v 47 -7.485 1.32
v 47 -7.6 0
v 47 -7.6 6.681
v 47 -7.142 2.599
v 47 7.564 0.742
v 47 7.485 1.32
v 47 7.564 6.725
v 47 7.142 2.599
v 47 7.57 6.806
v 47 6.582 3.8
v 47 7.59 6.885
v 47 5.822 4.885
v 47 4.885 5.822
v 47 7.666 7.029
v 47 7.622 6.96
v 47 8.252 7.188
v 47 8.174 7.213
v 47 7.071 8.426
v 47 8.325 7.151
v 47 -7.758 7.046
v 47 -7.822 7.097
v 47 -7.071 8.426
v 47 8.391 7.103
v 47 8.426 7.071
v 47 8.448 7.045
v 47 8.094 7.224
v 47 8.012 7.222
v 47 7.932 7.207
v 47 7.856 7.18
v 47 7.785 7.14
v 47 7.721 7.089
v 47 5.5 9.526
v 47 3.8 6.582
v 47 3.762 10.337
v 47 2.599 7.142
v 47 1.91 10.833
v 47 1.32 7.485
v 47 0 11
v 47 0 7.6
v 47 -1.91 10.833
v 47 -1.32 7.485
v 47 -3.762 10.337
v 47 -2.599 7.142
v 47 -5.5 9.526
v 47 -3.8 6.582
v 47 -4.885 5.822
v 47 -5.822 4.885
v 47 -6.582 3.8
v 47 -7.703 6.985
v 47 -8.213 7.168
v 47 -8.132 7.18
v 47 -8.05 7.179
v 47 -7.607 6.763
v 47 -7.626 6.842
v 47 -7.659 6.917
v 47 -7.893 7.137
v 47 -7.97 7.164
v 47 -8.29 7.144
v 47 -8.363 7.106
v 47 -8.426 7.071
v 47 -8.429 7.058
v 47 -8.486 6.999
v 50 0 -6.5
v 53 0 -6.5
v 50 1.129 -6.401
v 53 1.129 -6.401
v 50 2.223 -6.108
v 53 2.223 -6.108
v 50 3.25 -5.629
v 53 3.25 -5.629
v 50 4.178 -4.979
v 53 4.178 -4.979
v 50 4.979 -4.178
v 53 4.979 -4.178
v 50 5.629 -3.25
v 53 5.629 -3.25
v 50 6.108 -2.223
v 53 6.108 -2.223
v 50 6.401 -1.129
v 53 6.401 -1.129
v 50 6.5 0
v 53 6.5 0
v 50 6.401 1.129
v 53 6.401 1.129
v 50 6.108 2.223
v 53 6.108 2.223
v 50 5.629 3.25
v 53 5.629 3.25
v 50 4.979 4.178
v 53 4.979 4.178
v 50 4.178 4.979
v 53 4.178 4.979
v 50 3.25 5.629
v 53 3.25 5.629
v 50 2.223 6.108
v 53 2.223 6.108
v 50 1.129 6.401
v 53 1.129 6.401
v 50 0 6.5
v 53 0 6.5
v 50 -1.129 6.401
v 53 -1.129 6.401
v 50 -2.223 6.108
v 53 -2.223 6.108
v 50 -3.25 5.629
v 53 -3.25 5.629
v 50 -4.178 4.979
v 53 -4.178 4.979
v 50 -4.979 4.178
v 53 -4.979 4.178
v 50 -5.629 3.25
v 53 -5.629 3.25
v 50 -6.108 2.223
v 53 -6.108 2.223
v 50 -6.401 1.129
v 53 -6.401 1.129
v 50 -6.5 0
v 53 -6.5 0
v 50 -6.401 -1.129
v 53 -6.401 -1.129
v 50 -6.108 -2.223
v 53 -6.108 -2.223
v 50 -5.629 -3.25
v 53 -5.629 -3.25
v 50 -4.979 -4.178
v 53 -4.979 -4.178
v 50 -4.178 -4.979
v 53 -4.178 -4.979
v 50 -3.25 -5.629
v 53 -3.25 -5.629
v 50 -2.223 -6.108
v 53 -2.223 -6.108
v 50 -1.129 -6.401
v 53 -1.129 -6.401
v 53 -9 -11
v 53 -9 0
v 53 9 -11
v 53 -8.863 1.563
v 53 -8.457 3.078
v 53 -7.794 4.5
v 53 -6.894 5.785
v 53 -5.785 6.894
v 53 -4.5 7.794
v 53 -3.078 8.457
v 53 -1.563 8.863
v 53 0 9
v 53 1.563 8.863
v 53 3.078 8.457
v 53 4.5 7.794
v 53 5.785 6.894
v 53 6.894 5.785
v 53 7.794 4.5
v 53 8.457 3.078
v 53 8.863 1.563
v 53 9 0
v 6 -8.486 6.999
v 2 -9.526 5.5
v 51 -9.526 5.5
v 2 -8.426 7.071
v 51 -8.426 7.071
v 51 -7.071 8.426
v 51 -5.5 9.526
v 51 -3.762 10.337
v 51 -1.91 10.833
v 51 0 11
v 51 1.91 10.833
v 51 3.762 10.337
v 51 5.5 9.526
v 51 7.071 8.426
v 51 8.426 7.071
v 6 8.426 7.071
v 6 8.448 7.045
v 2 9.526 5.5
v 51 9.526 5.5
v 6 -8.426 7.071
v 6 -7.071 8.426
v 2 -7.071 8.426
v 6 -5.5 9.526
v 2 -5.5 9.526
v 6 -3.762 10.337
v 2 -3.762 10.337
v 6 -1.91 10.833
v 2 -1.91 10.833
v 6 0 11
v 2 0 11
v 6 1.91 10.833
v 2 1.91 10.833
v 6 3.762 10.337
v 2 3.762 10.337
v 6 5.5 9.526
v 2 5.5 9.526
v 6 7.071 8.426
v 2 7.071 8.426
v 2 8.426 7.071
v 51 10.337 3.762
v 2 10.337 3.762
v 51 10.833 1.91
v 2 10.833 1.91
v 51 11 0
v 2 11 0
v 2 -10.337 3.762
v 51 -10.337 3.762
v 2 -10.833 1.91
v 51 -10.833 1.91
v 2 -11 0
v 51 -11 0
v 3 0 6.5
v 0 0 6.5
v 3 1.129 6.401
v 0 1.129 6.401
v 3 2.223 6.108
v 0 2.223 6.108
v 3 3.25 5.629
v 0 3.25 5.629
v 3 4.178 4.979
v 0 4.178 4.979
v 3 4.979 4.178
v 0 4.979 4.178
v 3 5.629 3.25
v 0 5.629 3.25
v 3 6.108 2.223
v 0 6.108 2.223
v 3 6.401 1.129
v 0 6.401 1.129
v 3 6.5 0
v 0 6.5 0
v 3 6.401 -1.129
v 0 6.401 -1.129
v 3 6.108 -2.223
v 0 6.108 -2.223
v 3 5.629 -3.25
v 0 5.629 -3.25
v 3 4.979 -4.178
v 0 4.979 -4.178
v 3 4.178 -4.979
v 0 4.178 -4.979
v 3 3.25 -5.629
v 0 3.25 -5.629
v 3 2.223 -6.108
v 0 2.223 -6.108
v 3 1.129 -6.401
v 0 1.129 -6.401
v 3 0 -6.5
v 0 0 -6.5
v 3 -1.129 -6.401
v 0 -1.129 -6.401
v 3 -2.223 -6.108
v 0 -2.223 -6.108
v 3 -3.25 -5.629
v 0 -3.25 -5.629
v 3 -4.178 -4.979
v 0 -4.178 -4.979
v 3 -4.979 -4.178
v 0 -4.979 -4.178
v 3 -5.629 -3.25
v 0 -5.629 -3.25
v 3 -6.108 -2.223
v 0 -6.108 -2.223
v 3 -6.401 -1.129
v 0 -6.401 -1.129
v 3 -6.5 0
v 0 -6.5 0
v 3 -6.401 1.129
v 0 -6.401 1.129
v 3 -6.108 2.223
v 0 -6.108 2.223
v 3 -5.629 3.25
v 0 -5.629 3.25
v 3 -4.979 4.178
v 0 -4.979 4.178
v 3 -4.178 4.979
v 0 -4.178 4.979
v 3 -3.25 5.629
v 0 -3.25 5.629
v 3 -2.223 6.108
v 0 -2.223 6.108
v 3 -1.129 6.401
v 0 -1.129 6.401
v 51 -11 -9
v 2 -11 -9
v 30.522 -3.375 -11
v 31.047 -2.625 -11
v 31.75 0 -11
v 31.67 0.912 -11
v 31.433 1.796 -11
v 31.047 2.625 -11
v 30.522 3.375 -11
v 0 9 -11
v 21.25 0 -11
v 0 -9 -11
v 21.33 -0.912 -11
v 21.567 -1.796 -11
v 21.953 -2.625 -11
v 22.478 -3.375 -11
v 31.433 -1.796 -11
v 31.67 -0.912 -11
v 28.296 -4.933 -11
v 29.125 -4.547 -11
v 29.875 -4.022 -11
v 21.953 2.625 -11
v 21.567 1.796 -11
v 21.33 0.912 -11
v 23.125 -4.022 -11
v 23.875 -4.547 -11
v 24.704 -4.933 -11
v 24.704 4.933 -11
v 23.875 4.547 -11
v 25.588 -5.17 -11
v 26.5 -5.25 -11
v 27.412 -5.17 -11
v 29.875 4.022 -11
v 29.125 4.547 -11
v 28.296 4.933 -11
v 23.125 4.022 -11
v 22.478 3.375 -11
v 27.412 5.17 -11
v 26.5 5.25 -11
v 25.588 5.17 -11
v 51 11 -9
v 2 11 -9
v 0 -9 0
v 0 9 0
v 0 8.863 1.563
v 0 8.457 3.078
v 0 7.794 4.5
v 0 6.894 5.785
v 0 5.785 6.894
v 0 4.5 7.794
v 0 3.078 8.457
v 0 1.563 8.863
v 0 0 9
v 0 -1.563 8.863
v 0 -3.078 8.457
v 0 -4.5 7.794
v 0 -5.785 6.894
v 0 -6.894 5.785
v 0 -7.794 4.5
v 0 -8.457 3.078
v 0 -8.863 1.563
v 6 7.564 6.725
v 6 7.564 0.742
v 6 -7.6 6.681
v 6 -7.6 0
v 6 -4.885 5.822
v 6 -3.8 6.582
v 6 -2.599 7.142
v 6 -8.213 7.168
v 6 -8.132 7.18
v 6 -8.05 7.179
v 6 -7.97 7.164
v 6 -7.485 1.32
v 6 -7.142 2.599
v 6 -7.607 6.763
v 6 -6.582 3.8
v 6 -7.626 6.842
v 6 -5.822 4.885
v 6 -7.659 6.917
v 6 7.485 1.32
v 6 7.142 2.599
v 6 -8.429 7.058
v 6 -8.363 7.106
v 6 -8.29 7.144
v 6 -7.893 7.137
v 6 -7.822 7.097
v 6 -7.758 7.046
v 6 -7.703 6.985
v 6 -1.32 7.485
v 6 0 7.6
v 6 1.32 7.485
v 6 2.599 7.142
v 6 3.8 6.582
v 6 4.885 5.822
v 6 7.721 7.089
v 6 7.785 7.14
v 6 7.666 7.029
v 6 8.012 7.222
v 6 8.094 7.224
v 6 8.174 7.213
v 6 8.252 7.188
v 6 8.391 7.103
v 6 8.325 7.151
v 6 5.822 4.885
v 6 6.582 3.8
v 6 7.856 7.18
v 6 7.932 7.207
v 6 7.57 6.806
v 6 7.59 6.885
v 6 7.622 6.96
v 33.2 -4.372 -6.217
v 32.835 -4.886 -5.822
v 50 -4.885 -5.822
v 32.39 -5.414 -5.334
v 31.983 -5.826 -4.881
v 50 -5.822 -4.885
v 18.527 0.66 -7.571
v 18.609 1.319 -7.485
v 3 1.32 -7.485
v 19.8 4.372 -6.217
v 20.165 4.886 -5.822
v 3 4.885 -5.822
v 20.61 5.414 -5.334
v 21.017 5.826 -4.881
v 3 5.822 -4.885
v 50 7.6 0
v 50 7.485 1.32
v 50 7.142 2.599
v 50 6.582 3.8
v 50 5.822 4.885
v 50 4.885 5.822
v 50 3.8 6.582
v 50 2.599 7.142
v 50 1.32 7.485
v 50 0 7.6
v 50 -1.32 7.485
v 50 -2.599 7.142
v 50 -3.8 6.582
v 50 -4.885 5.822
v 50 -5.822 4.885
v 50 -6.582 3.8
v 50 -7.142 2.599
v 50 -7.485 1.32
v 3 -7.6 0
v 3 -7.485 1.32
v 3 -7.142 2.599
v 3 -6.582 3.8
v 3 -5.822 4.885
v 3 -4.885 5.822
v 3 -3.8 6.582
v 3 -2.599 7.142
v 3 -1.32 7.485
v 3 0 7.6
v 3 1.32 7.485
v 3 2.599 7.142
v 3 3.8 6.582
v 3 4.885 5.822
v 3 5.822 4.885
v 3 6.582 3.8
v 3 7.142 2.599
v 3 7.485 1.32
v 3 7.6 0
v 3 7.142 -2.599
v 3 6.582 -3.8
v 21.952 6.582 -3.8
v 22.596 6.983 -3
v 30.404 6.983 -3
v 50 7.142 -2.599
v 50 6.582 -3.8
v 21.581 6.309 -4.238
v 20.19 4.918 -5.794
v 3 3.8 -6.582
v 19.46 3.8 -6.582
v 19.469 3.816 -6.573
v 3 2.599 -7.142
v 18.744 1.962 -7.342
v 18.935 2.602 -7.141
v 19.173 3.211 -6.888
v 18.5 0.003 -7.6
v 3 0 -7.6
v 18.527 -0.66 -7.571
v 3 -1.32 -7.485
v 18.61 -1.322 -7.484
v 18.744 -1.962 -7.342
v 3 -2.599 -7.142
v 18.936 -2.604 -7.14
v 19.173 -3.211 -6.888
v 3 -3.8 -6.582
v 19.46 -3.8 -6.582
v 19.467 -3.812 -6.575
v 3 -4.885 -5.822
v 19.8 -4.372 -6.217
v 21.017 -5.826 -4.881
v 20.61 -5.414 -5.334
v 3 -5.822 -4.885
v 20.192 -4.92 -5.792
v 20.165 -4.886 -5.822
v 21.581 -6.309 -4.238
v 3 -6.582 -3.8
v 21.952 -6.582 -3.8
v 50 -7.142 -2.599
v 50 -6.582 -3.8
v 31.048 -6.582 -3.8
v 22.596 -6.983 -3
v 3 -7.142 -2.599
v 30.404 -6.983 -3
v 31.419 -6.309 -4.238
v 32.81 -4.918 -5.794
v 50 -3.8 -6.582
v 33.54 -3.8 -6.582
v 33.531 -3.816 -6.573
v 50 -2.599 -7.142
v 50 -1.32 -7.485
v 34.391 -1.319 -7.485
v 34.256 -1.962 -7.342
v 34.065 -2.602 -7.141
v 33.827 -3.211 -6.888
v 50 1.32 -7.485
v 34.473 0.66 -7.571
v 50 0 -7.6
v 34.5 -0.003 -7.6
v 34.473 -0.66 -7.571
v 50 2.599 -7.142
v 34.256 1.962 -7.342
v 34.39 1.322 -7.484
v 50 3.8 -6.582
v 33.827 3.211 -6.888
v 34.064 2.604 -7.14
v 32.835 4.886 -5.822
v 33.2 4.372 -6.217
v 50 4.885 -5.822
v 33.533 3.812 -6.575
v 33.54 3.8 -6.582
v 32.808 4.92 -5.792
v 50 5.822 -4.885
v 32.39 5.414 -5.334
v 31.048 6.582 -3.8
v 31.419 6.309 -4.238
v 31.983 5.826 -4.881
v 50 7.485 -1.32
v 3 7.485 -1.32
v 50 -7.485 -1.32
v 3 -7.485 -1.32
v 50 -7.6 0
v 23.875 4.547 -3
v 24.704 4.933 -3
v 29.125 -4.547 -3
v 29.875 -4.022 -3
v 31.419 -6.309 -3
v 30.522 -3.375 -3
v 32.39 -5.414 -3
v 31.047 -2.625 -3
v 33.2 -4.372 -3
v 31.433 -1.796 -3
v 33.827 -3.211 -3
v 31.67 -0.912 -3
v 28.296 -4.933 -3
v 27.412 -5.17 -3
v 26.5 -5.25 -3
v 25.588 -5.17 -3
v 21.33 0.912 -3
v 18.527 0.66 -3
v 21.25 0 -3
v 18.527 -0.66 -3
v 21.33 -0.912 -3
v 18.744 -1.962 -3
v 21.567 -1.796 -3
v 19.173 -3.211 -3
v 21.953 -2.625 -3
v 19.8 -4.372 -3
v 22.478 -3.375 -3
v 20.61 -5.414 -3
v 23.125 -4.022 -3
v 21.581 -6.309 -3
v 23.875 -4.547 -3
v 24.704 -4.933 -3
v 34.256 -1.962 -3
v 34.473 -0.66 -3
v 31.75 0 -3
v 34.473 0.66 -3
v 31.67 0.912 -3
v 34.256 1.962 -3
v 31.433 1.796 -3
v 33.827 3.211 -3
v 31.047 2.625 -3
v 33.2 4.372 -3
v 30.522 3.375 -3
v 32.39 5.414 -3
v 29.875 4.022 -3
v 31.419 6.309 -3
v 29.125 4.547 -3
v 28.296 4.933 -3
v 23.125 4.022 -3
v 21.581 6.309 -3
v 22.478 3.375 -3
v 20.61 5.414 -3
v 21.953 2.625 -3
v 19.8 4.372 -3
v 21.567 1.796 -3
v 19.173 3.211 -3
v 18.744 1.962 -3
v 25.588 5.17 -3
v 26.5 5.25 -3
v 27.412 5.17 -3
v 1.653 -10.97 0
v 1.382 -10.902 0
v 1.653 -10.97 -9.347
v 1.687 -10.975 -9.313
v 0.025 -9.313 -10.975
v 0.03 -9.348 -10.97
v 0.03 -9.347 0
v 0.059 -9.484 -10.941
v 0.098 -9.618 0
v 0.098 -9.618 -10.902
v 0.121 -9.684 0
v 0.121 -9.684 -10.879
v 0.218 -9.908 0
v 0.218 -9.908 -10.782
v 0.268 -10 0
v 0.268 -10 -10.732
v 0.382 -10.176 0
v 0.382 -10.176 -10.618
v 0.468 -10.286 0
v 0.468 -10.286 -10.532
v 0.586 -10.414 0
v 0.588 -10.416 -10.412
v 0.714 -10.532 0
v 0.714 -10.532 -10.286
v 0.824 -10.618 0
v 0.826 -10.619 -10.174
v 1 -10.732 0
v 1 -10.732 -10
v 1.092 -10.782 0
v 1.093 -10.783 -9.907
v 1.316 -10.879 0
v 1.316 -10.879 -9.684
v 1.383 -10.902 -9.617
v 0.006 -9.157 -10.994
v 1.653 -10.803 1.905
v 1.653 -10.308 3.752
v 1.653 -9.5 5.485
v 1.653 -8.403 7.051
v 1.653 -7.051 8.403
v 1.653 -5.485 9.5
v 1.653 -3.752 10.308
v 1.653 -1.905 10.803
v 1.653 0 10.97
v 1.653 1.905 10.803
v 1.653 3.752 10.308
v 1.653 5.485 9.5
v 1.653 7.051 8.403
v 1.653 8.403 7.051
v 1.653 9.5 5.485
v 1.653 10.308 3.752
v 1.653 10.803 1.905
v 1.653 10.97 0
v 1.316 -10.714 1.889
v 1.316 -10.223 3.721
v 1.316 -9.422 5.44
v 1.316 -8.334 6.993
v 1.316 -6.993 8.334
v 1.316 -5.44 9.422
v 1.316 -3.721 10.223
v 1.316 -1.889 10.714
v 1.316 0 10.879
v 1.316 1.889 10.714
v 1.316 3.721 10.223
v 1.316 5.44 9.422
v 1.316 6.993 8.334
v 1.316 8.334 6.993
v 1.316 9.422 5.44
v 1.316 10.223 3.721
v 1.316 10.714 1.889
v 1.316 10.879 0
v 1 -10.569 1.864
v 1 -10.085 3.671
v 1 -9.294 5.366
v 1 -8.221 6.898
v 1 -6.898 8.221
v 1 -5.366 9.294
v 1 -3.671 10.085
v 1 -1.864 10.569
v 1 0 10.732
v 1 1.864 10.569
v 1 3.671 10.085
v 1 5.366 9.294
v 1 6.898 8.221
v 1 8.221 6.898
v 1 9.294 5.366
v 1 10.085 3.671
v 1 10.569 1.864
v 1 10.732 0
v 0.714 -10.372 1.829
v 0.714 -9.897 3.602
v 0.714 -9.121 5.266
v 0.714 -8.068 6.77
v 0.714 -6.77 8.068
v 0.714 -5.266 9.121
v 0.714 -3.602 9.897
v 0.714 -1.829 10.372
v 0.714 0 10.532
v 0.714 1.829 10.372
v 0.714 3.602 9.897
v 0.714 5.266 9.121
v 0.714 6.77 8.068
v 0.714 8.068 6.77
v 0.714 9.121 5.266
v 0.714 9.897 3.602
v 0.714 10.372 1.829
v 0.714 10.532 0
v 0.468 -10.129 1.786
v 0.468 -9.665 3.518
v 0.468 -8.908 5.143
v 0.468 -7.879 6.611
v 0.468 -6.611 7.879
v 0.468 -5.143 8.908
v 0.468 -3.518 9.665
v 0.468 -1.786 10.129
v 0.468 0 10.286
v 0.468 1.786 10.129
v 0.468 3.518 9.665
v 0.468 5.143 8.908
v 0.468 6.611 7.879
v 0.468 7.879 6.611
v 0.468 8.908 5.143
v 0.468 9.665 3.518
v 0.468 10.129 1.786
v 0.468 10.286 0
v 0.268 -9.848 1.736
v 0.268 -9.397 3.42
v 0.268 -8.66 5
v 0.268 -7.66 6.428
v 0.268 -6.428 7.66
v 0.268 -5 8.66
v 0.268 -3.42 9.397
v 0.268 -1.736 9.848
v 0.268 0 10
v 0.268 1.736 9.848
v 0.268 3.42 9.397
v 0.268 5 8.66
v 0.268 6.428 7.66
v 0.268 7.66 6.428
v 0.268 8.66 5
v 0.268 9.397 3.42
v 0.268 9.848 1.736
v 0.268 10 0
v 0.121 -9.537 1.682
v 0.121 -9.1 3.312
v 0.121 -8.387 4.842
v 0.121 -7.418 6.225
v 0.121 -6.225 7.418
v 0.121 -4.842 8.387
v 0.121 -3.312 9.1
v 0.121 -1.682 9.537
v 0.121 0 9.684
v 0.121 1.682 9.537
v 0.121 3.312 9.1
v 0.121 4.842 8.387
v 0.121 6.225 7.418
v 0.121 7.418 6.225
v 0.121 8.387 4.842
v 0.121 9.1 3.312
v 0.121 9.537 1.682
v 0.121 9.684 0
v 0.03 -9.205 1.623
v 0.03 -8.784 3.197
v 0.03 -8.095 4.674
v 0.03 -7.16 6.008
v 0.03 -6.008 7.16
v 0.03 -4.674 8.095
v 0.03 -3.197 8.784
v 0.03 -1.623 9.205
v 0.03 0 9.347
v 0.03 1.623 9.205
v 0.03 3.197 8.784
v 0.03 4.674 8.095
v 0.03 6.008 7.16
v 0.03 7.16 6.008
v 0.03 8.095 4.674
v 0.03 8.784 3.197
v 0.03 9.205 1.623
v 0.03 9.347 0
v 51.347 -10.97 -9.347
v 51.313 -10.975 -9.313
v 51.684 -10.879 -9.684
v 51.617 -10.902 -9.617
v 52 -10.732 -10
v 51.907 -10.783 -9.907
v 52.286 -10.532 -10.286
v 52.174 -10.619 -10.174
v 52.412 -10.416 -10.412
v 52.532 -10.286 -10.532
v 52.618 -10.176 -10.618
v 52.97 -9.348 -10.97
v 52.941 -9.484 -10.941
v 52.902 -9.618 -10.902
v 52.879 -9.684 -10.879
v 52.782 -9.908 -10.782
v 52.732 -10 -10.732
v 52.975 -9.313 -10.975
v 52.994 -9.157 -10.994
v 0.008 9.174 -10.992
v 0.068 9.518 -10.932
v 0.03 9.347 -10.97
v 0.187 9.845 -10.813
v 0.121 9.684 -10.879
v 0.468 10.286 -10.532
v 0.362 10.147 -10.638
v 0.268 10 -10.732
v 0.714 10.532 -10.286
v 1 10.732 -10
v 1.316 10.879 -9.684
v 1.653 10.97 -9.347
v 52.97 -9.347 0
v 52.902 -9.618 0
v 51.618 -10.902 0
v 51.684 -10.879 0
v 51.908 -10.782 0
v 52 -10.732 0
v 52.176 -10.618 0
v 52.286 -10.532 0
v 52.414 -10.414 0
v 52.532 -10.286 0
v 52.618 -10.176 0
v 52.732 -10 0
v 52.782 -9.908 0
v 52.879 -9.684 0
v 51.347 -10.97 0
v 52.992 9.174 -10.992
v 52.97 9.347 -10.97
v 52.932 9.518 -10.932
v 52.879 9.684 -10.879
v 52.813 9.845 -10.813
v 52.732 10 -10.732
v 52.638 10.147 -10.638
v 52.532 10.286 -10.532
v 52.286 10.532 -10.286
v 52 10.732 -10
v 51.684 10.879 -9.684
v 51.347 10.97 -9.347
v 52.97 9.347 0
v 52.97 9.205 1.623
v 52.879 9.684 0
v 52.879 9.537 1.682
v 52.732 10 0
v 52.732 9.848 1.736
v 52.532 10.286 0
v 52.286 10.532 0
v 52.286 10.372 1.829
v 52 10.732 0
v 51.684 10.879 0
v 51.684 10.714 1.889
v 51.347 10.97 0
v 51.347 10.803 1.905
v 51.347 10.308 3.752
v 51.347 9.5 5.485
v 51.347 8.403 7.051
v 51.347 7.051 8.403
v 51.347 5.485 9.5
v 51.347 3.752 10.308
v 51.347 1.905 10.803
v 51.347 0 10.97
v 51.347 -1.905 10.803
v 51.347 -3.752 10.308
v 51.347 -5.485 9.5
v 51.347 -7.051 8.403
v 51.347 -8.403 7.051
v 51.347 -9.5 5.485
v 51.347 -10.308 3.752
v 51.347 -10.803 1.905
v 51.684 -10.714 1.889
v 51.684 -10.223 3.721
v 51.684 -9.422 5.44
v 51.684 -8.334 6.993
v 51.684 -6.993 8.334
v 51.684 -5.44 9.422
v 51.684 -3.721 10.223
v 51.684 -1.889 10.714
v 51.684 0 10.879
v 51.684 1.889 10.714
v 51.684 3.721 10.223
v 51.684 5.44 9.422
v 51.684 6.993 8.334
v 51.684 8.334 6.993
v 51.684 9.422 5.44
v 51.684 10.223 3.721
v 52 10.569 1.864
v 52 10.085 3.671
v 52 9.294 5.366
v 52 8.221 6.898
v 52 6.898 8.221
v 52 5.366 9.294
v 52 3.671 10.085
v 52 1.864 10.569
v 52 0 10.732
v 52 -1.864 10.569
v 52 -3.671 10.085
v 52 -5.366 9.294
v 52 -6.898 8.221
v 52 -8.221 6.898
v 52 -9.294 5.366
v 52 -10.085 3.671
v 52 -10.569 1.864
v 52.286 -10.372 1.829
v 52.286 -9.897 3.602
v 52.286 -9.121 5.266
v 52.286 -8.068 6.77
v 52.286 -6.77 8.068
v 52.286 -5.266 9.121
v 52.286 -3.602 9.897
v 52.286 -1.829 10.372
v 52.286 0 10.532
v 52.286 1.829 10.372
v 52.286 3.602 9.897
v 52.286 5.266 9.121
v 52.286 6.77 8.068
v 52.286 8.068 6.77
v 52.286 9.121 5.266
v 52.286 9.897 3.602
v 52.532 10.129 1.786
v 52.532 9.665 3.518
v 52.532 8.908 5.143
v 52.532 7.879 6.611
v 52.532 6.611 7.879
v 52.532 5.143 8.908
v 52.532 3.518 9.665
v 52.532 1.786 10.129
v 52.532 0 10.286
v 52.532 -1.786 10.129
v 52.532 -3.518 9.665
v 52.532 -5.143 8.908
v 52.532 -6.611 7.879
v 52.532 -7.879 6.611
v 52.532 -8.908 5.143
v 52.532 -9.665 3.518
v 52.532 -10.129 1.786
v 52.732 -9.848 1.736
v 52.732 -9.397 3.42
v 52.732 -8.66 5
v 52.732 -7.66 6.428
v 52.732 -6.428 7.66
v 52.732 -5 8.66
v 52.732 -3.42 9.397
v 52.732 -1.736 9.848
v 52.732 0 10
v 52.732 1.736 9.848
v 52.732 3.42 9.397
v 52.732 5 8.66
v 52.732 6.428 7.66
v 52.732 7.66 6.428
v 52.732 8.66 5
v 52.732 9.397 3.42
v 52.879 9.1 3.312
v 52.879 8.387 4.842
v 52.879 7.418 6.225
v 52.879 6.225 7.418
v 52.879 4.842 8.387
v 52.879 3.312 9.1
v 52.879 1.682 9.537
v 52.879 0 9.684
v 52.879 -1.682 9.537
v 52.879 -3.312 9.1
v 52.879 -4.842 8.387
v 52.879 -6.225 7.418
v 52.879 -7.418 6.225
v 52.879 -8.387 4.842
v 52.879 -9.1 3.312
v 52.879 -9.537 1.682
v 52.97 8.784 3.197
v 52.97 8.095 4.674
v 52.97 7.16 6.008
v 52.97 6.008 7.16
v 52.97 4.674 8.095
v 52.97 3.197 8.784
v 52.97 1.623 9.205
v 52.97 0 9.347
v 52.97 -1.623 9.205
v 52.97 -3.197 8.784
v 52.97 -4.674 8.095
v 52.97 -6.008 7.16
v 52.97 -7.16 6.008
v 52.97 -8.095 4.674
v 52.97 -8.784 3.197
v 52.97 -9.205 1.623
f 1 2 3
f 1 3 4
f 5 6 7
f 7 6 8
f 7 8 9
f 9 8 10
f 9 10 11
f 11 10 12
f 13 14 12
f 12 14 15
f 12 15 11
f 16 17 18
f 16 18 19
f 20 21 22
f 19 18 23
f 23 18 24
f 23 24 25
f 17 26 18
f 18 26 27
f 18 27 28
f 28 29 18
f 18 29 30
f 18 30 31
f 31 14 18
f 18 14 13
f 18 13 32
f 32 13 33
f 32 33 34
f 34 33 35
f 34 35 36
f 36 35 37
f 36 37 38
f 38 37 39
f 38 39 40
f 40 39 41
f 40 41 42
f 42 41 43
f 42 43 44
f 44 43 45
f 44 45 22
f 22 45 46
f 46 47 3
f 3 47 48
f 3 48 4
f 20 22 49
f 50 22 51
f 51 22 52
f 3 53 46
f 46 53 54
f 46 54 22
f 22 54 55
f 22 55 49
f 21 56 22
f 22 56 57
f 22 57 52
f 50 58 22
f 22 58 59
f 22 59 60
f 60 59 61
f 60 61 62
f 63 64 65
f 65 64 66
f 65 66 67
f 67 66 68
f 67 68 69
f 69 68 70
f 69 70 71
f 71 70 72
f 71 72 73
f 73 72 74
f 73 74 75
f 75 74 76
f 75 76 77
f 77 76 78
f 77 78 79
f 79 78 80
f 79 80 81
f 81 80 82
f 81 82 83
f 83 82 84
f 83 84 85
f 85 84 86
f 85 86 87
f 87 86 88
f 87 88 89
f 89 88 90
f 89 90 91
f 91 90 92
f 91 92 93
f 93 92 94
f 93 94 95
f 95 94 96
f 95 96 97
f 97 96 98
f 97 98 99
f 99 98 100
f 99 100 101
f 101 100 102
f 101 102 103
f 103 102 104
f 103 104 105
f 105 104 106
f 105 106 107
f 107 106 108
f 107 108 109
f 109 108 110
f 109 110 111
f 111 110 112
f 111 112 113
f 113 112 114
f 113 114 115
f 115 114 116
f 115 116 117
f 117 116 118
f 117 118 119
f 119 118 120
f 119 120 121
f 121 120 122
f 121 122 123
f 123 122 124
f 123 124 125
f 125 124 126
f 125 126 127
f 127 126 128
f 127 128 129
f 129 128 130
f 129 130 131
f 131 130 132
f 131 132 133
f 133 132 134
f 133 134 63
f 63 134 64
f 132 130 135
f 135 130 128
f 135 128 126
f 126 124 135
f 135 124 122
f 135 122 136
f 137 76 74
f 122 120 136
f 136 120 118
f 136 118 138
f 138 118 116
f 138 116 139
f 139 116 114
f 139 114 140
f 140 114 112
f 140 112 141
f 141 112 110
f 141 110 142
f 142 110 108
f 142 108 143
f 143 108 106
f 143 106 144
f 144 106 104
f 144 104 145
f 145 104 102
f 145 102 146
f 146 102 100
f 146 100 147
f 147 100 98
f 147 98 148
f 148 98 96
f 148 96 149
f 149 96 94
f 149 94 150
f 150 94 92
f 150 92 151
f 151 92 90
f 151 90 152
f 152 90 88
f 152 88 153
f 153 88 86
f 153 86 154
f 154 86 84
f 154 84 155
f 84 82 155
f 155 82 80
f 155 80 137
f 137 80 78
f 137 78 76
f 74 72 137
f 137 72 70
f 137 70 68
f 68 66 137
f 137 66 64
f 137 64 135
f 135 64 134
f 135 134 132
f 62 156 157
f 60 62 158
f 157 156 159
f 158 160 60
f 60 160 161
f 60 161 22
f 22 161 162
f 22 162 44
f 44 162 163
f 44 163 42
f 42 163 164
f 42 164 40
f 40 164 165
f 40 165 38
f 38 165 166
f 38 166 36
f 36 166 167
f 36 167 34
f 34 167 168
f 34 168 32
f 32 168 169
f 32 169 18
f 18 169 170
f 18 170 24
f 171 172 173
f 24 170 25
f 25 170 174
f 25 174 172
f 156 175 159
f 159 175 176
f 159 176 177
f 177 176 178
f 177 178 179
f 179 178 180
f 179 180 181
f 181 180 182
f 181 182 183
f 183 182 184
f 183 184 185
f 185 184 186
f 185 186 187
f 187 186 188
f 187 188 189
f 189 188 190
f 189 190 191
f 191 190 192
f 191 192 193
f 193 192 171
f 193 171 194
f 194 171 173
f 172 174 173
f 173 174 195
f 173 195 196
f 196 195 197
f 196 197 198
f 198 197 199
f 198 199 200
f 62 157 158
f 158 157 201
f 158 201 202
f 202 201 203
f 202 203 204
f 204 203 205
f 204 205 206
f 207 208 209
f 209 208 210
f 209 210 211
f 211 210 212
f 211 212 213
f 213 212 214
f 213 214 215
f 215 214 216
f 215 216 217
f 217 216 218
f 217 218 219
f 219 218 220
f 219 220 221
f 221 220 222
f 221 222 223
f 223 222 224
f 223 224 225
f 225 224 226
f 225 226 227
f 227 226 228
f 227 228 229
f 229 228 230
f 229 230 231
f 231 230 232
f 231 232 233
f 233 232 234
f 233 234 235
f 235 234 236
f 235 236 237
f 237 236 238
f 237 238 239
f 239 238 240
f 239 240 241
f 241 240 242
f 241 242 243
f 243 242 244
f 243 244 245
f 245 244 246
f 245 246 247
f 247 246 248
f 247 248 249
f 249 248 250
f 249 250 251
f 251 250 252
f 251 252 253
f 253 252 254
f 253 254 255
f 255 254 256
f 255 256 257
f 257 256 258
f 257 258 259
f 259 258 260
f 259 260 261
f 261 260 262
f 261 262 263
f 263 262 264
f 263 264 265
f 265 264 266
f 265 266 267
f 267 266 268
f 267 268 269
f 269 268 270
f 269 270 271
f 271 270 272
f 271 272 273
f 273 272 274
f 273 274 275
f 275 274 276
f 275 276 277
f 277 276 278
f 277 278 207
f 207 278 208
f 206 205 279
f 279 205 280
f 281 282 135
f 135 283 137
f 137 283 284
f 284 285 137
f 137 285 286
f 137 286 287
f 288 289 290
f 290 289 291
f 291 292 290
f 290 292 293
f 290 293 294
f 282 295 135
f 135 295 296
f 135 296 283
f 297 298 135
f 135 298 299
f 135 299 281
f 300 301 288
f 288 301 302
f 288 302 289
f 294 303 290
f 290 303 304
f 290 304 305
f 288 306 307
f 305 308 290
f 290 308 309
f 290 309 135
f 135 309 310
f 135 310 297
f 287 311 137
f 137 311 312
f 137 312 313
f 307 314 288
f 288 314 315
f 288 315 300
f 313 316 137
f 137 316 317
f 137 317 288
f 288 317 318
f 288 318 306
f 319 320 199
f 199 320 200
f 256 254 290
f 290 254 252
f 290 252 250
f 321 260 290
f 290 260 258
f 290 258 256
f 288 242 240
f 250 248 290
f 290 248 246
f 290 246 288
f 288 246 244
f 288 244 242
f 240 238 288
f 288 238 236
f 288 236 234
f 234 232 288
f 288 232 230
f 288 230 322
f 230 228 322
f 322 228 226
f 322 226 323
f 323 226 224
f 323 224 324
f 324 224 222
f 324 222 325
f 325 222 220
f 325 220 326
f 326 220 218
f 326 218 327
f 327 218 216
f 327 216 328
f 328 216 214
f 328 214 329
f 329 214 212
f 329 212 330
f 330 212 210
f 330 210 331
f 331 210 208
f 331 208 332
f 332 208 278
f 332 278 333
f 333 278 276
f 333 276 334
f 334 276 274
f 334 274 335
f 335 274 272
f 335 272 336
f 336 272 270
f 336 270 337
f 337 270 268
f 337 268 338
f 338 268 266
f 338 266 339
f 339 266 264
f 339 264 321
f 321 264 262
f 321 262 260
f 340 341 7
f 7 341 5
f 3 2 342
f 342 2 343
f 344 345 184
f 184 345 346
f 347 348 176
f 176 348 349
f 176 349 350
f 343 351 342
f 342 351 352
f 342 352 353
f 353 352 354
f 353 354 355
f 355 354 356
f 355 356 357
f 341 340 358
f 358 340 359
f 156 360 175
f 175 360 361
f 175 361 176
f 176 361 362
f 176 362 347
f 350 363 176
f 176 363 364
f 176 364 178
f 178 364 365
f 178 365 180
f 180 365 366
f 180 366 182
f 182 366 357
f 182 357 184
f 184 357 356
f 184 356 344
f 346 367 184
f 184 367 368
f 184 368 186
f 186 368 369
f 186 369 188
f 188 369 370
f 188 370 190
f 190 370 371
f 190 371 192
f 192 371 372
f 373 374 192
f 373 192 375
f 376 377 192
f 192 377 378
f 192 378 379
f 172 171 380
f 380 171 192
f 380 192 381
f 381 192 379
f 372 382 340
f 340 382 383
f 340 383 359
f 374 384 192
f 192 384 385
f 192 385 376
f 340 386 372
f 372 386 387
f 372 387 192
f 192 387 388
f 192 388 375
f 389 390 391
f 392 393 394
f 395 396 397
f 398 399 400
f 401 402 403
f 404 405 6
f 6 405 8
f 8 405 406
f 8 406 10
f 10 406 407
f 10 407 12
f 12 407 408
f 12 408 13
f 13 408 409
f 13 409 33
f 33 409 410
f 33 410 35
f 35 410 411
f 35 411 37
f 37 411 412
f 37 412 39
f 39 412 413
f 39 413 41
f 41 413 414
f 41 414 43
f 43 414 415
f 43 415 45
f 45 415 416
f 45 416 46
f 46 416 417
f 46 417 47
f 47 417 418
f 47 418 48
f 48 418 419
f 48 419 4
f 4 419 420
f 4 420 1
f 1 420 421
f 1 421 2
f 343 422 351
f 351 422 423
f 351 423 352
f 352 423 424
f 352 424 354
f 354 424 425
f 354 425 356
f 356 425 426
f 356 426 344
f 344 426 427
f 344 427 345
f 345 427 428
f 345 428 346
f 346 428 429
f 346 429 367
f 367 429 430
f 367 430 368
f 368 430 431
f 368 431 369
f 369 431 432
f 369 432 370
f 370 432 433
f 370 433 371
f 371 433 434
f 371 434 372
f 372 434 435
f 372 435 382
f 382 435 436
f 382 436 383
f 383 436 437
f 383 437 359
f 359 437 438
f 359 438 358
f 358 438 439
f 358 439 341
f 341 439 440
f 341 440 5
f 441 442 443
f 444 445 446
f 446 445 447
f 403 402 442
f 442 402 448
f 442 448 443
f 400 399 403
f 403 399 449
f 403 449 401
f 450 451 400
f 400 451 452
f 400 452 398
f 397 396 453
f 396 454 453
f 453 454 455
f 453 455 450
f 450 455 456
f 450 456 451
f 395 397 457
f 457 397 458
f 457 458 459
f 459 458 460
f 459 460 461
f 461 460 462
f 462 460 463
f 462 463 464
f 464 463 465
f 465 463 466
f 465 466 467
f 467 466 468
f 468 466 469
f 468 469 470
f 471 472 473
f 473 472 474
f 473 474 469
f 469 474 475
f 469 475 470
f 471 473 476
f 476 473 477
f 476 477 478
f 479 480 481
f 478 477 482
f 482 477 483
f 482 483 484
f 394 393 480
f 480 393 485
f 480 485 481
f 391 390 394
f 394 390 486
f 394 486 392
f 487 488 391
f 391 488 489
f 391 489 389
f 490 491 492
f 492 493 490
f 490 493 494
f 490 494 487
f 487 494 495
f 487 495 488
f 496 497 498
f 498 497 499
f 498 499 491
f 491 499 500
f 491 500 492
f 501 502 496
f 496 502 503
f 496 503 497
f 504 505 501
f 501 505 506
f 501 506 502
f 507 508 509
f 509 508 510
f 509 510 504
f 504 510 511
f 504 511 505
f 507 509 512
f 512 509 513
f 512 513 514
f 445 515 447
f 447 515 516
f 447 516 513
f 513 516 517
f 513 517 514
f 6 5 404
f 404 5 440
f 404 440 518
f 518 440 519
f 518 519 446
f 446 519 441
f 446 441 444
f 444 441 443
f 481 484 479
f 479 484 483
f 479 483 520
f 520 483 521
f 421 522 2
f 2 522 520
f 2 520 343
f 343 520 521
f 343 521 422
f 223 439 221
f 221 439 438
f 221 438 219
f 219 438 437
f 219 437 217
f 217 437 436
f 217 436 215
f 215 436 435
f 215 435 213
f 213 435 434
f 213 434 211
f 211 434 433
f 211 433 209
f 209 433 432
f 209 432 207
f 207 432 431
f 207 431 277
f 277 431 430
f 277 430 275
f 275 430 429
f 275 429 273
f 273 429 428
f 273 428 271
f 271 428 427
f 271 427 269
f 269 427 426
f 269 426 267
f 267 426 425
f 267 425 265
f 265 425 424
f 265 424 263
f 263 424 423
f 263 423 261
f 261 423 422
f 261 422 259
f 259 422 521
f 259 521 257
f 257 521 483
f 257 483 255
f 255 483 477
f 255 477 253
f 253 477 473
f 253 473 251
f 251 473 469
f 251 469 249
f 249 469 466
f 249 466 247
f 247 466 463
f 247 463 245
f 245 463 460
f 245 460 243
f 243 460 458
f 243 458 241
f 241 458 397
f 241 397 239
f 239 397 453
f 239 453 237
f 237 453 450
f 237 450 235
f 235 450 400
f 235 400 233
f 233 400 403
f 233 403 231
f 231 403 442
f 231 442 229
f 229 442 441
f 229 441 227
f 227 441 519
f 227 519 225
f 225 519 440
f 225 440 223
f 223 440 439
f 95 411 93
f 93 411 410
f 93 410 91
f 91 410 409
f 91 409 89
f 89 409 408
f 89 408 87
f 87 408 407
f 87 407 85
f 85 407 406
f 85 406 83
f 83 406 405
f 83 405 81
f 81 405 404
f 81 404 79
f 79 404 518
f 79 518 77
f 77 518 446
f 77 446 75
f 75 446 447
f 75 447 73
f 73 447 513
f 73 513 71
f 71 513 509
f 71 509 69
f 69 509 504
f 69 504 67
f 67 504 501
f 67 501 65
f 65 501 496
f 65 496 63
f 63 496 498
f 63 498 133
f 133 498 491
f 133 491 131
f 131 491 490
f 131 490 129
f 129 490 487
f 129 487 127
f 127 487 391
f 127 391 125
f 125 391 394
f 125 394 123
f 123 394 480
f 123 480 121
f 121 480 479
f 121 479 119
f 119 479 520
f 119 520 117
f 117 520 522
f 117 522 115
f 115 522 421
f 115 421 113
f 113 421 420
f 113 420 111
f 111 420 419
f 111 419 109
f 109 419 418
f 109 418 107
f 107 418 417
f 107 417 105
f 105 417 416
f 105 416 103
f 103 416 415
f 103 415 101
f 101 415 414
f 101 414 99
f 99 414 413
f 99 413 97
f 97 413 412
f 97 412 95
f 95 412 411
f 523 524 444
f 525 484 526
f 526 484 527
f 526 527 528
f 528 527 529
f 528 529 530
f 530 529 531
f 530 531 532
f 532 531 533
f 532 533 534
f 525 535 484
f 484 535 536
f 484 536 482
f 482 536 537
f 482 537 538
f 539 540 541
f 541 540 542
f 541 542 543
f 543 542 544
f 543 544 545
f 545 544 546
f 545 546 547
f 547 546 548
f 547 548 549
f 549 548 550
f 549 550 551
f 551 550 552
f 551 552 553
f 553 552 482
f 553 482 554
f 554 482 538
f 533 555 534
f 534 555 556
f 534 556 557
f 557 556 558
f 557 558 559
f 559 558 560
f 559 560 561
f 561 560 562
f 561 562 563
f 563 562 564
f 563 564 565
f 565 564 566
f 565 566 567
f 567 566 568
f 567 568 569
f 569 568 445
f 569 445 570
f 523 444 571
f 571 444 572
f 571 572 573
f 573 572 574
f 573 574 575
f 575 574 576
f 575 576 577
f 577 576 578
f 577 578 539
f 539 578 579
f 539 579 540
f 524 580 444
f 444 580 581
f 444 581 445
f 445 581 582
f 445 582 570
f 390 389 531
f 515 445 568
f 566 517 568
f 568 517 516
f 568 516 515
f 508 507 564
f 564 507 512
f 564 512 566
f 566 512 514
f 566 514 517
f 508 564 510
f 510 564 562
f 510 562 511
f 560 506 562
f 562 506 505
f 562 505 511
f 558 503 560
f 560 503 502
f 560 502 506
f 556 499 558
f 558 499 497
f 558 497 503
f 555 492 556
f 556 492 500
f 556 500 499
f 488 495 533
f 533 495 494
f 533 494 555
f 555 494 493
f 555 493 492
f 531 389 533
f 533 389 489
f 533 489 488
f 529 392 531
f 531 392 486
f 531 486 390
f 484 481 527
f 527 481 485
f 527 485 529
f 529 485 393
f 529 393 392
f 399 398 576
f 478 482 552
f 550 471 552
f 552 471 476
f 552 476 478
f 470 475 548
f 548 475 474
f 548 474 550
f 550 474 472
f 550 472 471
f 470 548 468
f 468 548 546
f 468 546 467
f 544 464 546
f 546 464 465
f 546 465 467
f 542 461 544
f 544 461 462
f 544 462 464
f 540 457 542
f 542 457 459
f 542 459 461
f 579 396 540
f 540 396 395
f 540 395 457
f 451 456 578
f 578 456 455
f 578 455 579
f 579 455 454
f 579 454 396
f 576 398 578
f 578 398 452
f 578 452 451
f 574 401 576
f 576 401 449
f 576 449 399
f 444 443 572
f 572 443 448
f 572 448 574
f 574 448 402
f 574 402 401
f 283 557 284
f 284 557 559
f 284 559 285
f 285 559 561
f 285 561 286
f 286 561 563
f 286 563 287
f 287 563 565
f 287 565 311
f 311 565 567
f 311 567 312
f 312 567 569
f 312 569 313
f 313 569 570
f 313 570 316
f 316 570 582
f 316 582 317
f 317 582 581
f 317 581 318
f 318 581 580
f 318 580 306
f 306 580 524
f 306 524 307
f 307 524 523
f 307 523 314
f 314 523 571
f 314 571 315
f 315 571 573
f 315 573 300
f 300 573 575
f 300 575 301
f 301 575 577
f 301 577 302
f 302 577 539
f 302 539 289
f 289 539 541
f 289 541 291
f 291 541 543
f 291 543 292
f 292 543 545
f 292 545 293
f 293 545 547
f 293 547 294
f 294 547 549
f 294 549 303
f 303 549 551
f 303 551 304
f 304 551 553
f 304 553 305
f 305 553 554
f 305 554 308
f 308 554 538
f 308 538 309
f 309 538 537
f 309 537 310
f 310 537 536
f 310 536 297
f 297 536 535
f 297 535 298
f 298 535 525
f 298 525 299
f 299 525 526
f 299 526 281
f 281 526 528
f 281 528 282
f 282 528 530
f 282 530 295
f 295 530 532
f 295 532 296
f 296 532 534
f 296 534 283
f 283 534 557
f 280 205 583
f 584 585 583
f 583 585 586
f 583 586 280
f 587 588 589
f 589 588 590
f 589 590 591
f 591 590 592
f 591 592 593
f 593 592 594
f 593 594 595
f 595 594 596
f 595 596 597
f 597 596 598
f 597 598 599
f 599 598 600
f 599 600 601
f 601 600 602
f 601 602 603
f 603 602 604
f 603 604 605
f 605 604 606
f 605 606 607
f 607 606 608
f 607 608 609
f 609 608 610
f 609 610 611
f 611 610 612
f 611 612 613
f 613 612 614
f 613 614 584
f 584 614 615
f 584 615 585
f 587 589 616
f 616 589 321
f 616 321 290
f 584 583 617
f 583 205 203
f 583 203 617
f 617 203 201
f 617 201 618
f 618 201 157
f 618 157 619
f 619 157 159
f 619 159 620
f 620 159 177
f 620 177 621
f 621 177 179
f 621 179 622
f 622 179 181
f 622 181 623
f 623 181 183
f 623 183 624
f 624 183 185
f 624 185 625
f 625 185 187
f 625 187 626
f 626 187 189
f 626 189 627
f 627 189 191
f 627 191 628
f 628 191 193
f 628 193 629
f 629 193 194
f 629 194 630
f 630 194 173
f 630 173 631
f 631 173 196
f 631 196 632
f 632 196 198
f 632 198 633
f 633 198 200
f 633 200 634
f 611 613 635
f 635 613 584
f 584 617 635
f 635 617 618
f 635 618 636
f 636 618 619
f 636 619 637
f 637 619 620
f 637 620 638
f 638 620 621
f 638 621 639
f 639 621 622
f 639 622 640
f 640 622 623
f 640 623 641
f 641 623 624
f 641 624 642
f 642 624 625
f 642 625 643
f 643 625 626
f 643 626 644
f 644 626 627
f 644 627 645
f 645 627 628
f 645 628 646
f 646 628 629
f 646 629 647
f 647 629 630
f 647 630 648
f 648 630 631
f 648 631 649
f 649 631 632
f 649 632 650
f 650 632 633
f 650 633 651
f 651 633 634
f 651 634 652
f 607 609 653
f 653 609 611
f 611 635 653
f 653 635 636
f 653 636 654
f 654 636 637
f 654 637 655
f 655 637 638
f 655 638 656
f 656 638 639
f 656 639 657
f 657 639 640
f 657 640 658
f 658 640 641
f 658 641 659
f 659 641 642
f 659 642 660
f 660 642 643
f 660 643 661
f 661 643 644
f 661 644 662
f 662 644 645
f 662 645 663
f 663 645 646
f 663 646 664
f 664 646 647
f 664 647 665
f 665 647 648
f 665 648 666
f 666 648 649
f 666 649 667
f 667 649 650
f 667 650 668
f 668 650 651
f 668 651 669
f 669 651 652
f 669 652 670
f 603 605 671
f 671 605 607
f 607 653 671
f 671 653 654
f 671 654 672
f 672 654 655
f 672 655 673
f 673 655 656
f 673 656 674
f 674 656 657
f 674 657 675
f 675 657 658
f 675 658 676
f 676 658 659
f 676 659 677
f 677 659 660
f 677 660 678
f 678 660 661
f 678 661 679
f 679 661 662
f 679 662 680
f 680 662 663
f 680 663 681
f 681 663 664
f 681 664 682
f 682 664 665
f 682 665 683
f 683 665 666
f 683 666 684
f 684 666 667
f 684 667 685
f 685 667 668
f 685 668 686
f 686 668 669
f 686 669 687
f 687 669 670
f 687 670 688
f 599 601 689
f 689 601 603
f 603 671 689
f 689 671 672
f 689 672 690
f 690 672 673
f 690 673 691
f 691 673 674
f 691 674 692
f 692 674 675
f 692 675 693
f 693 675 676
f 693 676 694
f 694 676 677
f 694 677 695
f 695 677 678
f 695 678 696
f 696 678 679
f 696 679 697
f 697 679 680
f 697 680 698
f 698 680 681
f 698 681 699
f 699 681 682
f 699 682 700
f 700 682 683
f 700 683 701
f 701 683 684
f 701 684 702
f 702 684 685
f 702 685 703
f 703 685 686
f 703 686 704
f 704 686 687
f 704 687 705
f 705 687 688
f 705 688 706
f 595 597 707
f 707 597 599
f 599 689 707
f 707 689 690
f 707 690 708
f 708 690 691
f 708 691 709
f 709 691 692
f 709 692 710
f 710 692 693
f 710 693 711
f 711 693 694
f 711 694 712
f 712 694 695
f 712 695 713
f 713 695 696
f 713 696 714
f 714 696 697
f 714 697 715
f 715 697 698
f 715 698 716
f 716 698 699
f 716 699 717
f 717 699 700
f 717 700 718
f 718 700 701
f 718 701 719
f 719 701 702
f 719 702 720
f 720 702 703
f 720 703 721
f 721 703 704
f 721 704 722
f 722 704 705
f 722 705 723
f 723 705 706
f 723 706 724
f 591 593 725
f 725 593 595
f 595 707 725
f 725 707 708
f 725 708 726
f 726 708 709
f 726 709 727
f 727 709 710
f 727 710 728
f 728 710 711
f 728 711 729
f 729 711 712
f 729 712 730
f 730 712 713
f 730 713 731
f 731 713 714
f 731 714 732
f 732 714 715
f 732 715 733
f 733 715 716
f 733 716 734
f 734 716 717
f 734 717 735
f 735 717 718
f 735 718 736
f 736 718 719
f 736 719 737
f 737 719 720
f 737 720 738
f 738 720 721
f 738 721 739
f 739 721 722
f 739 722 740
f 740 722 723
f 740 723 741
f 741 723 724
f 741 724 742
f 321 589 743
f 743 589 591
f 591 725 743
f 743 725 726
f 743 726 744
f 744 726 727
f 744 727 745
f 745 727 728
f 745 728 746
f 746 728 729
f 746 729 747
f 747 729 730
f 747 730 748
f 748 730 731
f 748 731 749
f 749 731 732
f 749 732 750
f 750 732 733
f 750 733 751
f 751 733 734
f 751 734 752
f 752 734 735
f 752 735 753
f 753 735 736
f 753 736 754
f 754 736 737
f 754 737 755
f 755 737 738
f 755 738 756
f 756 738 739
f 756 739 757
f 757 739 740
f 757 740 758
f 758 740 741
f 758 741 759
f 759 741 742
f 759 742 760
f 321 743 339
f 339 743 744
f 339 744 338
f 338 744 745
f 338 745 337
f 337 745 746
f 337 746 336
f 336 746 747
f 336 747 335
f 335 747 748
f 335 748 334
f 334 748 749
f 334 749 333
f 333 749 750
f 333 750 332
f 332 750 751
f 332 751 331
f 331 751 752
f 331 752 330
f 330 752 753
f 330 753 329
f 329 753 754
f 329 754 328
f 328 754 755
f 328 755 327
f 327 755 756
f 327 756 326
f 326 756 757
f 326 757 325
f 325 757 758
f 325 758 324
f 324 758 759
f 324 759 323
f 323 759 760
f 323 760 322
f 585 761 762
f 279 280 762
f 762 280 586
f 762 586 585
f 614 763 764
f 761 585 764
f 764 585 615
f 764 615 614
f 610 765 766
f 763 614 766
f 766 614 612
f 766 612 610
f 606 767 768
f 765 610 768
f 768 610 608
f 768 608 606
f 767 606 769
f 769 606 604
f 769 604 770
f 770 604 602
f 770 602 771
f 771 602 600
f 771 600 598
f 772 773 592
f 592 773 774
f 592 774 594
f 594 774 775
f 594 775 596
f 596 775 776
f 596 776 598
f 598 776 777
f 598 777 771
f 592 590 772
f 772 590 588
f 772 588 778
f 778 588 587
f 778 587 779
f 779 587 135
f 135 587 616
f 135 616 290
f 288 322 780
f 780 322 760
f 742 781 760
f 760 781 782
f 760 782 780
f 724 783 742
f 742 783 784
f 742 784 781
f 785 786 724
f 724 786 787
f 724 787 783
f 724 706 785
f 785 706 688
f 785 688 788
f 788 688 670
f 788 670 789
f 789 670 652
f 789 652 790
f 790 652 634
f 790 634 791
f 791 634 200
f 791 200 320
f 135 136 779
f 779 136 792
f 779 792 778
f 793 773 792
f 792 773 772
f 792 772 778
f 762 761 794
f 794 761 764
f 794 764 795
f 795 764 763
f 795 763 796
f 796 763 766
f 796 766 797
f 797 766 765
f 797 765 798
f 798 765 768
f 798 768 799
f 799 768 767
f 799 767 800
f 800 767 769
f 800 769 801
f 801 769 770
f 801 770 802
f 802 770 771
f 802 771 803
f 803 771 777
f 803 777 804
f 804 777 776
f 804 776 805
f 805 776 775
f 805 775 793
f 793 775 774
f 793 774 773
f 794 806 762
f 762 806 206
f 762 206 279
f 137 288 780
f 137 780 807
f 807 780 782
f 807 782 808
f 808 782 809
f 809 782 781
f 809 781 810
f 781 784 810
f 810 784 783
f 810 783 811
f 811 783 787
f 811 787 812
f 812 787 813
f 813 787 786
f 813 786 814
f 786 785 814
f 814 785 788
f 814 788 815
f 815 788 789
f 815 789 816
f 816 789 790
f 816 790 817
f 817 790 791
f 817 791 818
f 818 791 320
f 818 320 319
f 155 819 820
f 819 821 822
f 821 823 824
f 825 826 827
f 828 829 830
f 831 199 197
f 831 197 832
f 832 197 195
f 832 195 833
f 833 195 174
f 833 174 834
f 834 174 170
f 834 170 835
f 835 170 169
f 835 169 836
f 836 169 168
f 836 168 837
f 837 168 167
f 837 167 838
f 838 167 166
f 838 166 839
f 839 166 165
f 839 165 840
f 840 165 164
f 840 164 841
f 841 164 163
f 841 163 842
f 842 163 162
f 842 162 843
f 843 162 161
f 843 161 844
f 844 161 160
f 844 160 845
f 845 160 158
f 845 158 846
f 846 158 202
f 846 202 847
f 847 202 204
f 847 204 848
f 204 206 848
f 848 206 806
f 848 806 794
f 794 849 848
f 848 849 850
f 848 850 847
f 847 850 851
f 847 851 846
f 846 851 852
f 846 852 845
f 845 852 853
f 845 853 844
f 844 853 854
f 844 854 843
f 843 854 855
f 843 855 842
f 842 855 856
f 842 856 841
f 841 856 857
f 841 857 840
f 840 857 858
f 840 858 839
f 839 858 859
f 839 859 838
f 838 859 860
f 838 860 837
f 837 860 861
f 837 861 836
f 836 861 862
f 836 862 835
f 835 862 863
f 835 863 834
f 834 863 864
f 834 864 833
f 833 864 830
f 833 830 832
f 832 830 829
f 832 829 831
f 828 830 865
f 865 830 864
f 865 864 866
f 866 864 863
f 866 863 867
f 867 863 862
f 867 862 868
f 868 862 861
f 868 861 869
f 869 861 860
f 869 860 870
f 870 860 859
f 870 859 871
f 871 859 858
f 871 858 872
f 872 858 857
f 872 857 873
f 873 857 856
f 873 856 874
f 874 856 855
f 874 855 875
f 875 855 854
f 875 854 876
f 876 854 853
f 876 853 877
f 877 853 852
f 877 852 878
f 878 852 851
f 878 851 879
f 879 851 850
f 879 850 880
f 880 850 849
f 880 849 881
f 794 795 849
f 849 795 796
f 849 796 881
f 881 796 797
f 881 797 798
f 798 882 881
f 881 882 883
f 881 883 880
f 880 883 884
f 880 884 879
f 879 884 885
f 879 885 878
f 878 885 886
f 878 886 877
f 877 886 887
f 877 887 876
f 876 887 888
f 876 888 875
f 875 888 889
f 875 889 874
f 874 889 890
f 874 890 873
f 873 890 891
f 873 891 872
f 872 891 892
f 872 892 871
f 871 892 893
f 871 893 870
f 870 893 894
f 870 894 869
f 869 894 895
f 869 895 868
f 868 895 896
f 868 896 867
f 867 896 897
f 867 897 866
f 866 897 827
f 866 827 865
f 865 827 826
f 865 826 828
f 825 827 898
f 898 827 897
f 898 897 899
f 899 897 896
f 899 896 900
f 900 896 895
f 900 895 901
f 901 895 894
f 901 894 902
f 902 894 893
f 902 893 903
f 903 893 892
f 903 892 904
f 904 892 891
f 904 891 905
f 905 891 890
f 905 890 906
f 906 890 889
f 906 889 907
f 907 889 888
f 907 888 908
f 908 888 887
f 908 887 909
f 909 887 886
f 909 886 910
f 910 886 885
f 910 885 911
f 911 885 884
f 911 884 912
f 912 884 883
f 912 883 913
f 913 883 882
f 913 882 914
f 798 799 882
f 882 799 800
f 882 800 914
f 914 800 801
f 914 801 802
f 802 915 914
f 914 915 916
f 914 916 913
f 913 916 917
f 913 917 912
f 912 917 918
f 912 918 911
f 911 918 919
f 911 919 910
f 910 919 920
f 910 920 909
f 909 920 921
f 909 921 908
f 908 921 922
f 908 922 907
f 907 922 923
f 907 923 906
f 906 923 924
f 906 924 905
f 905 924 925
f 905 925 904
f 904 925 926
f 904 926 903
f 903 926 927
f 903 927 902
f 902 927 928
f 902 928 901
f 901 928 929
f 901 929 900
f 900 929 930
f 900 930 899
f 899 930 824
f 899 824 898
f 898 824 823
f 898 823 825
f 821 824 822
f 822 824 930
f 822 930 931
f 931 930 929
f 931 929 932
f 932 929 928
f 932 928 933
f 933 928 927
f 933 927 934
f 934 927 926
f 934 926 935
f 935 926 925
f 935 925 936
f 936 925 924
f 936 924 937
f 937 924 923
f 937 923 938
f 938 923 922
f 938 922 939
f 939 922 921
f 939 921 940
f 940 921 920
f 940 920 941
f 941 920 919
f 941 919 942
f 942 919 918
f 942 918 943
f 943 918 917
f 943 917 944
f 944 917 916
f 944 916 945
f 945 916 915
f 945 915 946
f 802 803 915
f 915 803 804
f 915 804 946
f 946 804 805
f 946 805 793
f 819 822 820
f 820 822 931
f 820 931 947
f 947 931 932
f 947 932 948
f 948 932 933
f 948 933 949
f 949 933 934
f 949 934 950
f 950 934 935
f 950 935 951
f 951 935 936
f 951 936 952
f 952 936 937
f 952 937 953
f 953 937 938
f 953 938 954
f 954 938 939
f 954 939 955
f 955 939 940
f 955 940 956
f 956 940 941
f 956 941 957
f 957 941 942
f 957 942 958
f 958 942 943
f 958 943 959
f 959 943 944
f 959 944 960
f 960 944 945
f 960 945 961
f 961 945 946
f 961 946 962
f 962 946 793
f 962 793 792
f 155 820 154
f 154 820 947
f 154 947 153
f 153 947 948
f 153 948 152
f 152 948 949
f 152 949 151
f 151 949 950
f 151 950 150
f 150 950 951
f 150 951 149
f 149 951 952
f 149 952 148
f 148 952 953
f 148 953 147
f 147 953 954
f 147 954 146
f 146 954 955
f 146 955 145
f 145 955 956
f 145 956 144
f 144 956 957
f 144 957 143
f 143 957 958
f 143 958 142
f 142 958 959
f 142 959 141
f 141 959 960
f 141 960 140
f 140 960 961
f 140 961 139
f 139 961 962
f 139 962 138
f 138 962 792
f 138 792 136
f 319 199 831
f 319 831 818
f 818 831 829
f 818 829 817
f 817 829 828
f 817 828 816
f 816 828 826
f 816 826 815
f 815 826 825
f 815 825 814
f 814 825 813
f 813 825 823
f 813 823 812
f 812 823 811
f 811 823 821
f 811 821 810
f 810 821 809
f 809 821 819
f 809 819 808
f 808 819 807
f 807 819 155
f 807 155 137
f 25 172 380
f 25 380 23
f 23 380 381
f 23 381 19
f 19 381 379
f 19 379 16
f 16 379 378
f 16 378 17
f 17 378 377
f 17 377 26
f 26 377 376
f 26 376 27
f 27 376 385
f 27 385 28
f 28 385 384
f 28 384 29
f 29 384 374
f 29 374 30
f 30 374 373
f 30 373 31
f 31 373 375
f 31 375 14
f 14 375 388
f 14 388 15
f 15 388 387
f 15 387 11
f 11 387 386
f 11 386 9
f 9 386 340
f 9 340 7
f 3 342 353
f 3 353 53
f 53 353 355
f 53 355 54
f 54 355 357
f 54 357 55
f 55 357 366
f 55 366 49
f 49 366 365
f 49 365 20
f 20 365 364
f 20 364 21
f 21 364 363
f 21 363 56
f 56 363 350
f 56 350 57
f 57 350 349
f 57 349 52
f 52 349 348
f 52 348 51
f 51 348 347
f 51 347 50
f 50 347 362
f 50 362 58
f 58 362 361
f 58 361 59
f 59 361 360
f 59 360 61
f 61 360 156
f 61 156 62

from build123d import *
from build123d.topology import SkipClean

# Parameters (mm, degrees)
BOSS_EXTRUDE1_DEPTH = 26.5
CUT_EXTRUDE2_REACH  = 38.729
CUT_EXTRUDE2_START  = -6
CUT_EXTRUDE3_REACH  = 32.729
SKETCH4_R           = 6.5
CUT_EXTRUDE6_START  = -3
SKETCH7_R           = 7.6000000000000005
CUT_EXTRUDE6_DEPTH  = 3
BOSS_EXTRUDE4_REACH = 60.236
BOSS_EXTRUDE4_START = -3
SKETCH8_R           = 7.999999999999998
CUT_EXTRUDE4_START  = -11
SKETCH5_R           = 5.2499999999999964
CUT_EXTRUDE4_DEPTH  = 8
FILLET1_R           = 2
FILLET2_R           = 0.5


with BuildPart() as part:
    # Sketch1 → Boss-Extrude1 (new body)
    with BuildSketch(Plane(origin=(0, 0, 0), x_dir=(0, 0, -1), z_dir=(1, 0, 0))):
        with BuildLine():
            Line((0, 11), (11.000000000000002, 11))
            Line((11.000000000000002, 11), (11.000000000000002, -11))
            Line((11.000000000000002, -11), (3.47e-15, -11))
            ThreePointArc((3.47e-15, -11), (-11, 1.35e-15), (0, 11))
        make_face()
    boss_extrude1 = extrude(amount=BOSS_EXTRUDE1_DEPTH)

    # Sketch3 → Cut-Extrude2 (cut, up to next)
    with BuildSketch(Plane.ZY.offset(CUT_EXTRUDE2_START), mode=Mode.PRIVATE) as cut_extrude2_sk1:
        with BuildLine():
            Line((0.7418695651929484, 7.5637047502028025), (10.999999999999998, 7.5637047502028025))
            Line((10.999999999999998, 7.5637047502028025), (11, -7.599999999999998))
            Line((11, -7.599999999999998), (9.3e-16, -7.6))
            ThreePointArc((9.3e-16, -7.6), (-7.590920764358606, 0.3713784447559566), (0.7418695651929484, 7.5637047502028025))
        make_face()
    cut_extrude2_tool1 = extrude(cut_extrude2_sk1.sketch, amount=-CUT_EXTRUDE2_REACH, mode=Mode.PRIVATE) & part.part
    cut_extrude2 = cut_extrude2_tool1.solids().sort_by_distance((6, -0.011225, 2.425795))[0]
    add(cut_extrude2, mode=Mode.SUBTRACT)

    # Sketch4 → Cut-Extrude3 (cut, up to next)
    with BuildSketch(Plane.ZY, mode=Mode.PRIVATE) as cut_extrude3_sk1:
        Circle(SKETCH4_R)
    cut_extrude3_tool1 = extrude(cut_extrude3_sk1.sketch, amount=-CUT_EXTRUDE3_REACH, mode=Mode.PRIVATE) & part.part
    cut_extrude3 = cut_extrude3_tool1.solids().sort_by_distance((0, 0, 0))[0]
    add(cut_extrude3, mode=Mode.SUBTRACT)

    # Sketch7 → Cut-Extrude6 (cut)
    with BuildSketch(Plane(origin=(6, 0, 0), x_dir=(0, 0, -1), z_dir=(1, 0, 0)).offset(CUT_EXTRUDE6_START)):
        with Locations(Location((0, 0, 0), (0, 0, 95.601814437))):
            Circle(SKETCH7_R)
    cut_extrude6 = extrude(amount=CUT_EXTRUDE6_DEPTH, mode=Mode.SUBTRACT)

    # Mirror1: Boss-Extrude1, Cut-Extrude2, Cut-Extrude3, Cut-Extrude6 across plane
    with SkipClean():  # the faces are left unmerged after this step: merging them gives an invalid solid
        add(boss_extrude1.mirror(Plane(origin=(26.5, 0, 0), x_dir=(0, 0, 1), z_dir=(1, 0, 0))))
        add(cut_extrude2.mirror(Plane(origin=(26.5, 0, 0), x_dir=(0, 0, 1), z_dir=(1, 0, 0))), mode=Mode.SUBTRACT)
        add(cut_extrude3.mirror(Plane(origin=(26.5, 0, 0), x_dir=(0, 0, 1), z_dir=(1, 0, 0))), mode=Mode.SUBTRACT)
        add(cut_extrude6.mirror(Plane(origin=(26.5, 0, 0), x_dir=(0, 0, 1), z_dir=(1, 0, 0))), mode=Mode.SUBTRACT)

    # Sketch8 → Boss-Extrude4 (add, up to next)
    with BuildSketch(Plane.XY.offset(BOSS_EXTRUDE4_START), mode=Mode.PRIVATE) as boss_extrude4_sk1:
        with Locations((26.499999999999996, 3.1e-16)):
            Circle(SKETCH8_R)
    boss_extrude4_tool1 = extrude(boss_extrude4_sk1.sketch, amount=-BOSS_EXTRUDE4_REACH, mode=Mode.PRIVATE) - part.part
    add(boss_extrude4_tool1.solids().sort_by_distance((26.5, 0, -3))[0])

    # Sketch5 → Cut-Extrude4 (cut)
    with SkipClean():  # the faces are left unmerged after this step: merging them gives an invalid solid
        with BuildSketch(Plane.XY.offset(CUT_EXTRUDE4_START)):
            with Locations((26.499999999999996, 3.1e-16)):
                Circle(SKETCH5_R)
        extrude(amount=CUT_EXTRUDE4_DEPTH, mode=Mode.SUBTRACT)

    # Fillet1
    fillet1_edges = [part.edges().sort_by_distance(p)[0] for p in [
        (53, -11, -5.500000000000003),
        (53, 11, -5.500000000000001),
        (53, -1.7e-15, 11),
        (0, -1.7e-15, 11),
        (0, 11, -5.500000000000001),
        (0, -11, -5.500000000000003),
        (26.5, 11, -11.000000000000002),
        (26.5, -11, -11.000000000000002),
    ]]
    fillet(fillet1_edges, radius=FILLET1_R)

    # Fillet2
    fillet2_edges = [part.edges().sort_by_distance(p)[0] for p in [
        (26.5, -7.599999999999999, 7.9523581408284185),
        (26.5, 7.5637047502028025, 7.9868874069789895),
    ]]
    fillet(fillet2_edges, radius=FILLET2_R)


solid = part.part
